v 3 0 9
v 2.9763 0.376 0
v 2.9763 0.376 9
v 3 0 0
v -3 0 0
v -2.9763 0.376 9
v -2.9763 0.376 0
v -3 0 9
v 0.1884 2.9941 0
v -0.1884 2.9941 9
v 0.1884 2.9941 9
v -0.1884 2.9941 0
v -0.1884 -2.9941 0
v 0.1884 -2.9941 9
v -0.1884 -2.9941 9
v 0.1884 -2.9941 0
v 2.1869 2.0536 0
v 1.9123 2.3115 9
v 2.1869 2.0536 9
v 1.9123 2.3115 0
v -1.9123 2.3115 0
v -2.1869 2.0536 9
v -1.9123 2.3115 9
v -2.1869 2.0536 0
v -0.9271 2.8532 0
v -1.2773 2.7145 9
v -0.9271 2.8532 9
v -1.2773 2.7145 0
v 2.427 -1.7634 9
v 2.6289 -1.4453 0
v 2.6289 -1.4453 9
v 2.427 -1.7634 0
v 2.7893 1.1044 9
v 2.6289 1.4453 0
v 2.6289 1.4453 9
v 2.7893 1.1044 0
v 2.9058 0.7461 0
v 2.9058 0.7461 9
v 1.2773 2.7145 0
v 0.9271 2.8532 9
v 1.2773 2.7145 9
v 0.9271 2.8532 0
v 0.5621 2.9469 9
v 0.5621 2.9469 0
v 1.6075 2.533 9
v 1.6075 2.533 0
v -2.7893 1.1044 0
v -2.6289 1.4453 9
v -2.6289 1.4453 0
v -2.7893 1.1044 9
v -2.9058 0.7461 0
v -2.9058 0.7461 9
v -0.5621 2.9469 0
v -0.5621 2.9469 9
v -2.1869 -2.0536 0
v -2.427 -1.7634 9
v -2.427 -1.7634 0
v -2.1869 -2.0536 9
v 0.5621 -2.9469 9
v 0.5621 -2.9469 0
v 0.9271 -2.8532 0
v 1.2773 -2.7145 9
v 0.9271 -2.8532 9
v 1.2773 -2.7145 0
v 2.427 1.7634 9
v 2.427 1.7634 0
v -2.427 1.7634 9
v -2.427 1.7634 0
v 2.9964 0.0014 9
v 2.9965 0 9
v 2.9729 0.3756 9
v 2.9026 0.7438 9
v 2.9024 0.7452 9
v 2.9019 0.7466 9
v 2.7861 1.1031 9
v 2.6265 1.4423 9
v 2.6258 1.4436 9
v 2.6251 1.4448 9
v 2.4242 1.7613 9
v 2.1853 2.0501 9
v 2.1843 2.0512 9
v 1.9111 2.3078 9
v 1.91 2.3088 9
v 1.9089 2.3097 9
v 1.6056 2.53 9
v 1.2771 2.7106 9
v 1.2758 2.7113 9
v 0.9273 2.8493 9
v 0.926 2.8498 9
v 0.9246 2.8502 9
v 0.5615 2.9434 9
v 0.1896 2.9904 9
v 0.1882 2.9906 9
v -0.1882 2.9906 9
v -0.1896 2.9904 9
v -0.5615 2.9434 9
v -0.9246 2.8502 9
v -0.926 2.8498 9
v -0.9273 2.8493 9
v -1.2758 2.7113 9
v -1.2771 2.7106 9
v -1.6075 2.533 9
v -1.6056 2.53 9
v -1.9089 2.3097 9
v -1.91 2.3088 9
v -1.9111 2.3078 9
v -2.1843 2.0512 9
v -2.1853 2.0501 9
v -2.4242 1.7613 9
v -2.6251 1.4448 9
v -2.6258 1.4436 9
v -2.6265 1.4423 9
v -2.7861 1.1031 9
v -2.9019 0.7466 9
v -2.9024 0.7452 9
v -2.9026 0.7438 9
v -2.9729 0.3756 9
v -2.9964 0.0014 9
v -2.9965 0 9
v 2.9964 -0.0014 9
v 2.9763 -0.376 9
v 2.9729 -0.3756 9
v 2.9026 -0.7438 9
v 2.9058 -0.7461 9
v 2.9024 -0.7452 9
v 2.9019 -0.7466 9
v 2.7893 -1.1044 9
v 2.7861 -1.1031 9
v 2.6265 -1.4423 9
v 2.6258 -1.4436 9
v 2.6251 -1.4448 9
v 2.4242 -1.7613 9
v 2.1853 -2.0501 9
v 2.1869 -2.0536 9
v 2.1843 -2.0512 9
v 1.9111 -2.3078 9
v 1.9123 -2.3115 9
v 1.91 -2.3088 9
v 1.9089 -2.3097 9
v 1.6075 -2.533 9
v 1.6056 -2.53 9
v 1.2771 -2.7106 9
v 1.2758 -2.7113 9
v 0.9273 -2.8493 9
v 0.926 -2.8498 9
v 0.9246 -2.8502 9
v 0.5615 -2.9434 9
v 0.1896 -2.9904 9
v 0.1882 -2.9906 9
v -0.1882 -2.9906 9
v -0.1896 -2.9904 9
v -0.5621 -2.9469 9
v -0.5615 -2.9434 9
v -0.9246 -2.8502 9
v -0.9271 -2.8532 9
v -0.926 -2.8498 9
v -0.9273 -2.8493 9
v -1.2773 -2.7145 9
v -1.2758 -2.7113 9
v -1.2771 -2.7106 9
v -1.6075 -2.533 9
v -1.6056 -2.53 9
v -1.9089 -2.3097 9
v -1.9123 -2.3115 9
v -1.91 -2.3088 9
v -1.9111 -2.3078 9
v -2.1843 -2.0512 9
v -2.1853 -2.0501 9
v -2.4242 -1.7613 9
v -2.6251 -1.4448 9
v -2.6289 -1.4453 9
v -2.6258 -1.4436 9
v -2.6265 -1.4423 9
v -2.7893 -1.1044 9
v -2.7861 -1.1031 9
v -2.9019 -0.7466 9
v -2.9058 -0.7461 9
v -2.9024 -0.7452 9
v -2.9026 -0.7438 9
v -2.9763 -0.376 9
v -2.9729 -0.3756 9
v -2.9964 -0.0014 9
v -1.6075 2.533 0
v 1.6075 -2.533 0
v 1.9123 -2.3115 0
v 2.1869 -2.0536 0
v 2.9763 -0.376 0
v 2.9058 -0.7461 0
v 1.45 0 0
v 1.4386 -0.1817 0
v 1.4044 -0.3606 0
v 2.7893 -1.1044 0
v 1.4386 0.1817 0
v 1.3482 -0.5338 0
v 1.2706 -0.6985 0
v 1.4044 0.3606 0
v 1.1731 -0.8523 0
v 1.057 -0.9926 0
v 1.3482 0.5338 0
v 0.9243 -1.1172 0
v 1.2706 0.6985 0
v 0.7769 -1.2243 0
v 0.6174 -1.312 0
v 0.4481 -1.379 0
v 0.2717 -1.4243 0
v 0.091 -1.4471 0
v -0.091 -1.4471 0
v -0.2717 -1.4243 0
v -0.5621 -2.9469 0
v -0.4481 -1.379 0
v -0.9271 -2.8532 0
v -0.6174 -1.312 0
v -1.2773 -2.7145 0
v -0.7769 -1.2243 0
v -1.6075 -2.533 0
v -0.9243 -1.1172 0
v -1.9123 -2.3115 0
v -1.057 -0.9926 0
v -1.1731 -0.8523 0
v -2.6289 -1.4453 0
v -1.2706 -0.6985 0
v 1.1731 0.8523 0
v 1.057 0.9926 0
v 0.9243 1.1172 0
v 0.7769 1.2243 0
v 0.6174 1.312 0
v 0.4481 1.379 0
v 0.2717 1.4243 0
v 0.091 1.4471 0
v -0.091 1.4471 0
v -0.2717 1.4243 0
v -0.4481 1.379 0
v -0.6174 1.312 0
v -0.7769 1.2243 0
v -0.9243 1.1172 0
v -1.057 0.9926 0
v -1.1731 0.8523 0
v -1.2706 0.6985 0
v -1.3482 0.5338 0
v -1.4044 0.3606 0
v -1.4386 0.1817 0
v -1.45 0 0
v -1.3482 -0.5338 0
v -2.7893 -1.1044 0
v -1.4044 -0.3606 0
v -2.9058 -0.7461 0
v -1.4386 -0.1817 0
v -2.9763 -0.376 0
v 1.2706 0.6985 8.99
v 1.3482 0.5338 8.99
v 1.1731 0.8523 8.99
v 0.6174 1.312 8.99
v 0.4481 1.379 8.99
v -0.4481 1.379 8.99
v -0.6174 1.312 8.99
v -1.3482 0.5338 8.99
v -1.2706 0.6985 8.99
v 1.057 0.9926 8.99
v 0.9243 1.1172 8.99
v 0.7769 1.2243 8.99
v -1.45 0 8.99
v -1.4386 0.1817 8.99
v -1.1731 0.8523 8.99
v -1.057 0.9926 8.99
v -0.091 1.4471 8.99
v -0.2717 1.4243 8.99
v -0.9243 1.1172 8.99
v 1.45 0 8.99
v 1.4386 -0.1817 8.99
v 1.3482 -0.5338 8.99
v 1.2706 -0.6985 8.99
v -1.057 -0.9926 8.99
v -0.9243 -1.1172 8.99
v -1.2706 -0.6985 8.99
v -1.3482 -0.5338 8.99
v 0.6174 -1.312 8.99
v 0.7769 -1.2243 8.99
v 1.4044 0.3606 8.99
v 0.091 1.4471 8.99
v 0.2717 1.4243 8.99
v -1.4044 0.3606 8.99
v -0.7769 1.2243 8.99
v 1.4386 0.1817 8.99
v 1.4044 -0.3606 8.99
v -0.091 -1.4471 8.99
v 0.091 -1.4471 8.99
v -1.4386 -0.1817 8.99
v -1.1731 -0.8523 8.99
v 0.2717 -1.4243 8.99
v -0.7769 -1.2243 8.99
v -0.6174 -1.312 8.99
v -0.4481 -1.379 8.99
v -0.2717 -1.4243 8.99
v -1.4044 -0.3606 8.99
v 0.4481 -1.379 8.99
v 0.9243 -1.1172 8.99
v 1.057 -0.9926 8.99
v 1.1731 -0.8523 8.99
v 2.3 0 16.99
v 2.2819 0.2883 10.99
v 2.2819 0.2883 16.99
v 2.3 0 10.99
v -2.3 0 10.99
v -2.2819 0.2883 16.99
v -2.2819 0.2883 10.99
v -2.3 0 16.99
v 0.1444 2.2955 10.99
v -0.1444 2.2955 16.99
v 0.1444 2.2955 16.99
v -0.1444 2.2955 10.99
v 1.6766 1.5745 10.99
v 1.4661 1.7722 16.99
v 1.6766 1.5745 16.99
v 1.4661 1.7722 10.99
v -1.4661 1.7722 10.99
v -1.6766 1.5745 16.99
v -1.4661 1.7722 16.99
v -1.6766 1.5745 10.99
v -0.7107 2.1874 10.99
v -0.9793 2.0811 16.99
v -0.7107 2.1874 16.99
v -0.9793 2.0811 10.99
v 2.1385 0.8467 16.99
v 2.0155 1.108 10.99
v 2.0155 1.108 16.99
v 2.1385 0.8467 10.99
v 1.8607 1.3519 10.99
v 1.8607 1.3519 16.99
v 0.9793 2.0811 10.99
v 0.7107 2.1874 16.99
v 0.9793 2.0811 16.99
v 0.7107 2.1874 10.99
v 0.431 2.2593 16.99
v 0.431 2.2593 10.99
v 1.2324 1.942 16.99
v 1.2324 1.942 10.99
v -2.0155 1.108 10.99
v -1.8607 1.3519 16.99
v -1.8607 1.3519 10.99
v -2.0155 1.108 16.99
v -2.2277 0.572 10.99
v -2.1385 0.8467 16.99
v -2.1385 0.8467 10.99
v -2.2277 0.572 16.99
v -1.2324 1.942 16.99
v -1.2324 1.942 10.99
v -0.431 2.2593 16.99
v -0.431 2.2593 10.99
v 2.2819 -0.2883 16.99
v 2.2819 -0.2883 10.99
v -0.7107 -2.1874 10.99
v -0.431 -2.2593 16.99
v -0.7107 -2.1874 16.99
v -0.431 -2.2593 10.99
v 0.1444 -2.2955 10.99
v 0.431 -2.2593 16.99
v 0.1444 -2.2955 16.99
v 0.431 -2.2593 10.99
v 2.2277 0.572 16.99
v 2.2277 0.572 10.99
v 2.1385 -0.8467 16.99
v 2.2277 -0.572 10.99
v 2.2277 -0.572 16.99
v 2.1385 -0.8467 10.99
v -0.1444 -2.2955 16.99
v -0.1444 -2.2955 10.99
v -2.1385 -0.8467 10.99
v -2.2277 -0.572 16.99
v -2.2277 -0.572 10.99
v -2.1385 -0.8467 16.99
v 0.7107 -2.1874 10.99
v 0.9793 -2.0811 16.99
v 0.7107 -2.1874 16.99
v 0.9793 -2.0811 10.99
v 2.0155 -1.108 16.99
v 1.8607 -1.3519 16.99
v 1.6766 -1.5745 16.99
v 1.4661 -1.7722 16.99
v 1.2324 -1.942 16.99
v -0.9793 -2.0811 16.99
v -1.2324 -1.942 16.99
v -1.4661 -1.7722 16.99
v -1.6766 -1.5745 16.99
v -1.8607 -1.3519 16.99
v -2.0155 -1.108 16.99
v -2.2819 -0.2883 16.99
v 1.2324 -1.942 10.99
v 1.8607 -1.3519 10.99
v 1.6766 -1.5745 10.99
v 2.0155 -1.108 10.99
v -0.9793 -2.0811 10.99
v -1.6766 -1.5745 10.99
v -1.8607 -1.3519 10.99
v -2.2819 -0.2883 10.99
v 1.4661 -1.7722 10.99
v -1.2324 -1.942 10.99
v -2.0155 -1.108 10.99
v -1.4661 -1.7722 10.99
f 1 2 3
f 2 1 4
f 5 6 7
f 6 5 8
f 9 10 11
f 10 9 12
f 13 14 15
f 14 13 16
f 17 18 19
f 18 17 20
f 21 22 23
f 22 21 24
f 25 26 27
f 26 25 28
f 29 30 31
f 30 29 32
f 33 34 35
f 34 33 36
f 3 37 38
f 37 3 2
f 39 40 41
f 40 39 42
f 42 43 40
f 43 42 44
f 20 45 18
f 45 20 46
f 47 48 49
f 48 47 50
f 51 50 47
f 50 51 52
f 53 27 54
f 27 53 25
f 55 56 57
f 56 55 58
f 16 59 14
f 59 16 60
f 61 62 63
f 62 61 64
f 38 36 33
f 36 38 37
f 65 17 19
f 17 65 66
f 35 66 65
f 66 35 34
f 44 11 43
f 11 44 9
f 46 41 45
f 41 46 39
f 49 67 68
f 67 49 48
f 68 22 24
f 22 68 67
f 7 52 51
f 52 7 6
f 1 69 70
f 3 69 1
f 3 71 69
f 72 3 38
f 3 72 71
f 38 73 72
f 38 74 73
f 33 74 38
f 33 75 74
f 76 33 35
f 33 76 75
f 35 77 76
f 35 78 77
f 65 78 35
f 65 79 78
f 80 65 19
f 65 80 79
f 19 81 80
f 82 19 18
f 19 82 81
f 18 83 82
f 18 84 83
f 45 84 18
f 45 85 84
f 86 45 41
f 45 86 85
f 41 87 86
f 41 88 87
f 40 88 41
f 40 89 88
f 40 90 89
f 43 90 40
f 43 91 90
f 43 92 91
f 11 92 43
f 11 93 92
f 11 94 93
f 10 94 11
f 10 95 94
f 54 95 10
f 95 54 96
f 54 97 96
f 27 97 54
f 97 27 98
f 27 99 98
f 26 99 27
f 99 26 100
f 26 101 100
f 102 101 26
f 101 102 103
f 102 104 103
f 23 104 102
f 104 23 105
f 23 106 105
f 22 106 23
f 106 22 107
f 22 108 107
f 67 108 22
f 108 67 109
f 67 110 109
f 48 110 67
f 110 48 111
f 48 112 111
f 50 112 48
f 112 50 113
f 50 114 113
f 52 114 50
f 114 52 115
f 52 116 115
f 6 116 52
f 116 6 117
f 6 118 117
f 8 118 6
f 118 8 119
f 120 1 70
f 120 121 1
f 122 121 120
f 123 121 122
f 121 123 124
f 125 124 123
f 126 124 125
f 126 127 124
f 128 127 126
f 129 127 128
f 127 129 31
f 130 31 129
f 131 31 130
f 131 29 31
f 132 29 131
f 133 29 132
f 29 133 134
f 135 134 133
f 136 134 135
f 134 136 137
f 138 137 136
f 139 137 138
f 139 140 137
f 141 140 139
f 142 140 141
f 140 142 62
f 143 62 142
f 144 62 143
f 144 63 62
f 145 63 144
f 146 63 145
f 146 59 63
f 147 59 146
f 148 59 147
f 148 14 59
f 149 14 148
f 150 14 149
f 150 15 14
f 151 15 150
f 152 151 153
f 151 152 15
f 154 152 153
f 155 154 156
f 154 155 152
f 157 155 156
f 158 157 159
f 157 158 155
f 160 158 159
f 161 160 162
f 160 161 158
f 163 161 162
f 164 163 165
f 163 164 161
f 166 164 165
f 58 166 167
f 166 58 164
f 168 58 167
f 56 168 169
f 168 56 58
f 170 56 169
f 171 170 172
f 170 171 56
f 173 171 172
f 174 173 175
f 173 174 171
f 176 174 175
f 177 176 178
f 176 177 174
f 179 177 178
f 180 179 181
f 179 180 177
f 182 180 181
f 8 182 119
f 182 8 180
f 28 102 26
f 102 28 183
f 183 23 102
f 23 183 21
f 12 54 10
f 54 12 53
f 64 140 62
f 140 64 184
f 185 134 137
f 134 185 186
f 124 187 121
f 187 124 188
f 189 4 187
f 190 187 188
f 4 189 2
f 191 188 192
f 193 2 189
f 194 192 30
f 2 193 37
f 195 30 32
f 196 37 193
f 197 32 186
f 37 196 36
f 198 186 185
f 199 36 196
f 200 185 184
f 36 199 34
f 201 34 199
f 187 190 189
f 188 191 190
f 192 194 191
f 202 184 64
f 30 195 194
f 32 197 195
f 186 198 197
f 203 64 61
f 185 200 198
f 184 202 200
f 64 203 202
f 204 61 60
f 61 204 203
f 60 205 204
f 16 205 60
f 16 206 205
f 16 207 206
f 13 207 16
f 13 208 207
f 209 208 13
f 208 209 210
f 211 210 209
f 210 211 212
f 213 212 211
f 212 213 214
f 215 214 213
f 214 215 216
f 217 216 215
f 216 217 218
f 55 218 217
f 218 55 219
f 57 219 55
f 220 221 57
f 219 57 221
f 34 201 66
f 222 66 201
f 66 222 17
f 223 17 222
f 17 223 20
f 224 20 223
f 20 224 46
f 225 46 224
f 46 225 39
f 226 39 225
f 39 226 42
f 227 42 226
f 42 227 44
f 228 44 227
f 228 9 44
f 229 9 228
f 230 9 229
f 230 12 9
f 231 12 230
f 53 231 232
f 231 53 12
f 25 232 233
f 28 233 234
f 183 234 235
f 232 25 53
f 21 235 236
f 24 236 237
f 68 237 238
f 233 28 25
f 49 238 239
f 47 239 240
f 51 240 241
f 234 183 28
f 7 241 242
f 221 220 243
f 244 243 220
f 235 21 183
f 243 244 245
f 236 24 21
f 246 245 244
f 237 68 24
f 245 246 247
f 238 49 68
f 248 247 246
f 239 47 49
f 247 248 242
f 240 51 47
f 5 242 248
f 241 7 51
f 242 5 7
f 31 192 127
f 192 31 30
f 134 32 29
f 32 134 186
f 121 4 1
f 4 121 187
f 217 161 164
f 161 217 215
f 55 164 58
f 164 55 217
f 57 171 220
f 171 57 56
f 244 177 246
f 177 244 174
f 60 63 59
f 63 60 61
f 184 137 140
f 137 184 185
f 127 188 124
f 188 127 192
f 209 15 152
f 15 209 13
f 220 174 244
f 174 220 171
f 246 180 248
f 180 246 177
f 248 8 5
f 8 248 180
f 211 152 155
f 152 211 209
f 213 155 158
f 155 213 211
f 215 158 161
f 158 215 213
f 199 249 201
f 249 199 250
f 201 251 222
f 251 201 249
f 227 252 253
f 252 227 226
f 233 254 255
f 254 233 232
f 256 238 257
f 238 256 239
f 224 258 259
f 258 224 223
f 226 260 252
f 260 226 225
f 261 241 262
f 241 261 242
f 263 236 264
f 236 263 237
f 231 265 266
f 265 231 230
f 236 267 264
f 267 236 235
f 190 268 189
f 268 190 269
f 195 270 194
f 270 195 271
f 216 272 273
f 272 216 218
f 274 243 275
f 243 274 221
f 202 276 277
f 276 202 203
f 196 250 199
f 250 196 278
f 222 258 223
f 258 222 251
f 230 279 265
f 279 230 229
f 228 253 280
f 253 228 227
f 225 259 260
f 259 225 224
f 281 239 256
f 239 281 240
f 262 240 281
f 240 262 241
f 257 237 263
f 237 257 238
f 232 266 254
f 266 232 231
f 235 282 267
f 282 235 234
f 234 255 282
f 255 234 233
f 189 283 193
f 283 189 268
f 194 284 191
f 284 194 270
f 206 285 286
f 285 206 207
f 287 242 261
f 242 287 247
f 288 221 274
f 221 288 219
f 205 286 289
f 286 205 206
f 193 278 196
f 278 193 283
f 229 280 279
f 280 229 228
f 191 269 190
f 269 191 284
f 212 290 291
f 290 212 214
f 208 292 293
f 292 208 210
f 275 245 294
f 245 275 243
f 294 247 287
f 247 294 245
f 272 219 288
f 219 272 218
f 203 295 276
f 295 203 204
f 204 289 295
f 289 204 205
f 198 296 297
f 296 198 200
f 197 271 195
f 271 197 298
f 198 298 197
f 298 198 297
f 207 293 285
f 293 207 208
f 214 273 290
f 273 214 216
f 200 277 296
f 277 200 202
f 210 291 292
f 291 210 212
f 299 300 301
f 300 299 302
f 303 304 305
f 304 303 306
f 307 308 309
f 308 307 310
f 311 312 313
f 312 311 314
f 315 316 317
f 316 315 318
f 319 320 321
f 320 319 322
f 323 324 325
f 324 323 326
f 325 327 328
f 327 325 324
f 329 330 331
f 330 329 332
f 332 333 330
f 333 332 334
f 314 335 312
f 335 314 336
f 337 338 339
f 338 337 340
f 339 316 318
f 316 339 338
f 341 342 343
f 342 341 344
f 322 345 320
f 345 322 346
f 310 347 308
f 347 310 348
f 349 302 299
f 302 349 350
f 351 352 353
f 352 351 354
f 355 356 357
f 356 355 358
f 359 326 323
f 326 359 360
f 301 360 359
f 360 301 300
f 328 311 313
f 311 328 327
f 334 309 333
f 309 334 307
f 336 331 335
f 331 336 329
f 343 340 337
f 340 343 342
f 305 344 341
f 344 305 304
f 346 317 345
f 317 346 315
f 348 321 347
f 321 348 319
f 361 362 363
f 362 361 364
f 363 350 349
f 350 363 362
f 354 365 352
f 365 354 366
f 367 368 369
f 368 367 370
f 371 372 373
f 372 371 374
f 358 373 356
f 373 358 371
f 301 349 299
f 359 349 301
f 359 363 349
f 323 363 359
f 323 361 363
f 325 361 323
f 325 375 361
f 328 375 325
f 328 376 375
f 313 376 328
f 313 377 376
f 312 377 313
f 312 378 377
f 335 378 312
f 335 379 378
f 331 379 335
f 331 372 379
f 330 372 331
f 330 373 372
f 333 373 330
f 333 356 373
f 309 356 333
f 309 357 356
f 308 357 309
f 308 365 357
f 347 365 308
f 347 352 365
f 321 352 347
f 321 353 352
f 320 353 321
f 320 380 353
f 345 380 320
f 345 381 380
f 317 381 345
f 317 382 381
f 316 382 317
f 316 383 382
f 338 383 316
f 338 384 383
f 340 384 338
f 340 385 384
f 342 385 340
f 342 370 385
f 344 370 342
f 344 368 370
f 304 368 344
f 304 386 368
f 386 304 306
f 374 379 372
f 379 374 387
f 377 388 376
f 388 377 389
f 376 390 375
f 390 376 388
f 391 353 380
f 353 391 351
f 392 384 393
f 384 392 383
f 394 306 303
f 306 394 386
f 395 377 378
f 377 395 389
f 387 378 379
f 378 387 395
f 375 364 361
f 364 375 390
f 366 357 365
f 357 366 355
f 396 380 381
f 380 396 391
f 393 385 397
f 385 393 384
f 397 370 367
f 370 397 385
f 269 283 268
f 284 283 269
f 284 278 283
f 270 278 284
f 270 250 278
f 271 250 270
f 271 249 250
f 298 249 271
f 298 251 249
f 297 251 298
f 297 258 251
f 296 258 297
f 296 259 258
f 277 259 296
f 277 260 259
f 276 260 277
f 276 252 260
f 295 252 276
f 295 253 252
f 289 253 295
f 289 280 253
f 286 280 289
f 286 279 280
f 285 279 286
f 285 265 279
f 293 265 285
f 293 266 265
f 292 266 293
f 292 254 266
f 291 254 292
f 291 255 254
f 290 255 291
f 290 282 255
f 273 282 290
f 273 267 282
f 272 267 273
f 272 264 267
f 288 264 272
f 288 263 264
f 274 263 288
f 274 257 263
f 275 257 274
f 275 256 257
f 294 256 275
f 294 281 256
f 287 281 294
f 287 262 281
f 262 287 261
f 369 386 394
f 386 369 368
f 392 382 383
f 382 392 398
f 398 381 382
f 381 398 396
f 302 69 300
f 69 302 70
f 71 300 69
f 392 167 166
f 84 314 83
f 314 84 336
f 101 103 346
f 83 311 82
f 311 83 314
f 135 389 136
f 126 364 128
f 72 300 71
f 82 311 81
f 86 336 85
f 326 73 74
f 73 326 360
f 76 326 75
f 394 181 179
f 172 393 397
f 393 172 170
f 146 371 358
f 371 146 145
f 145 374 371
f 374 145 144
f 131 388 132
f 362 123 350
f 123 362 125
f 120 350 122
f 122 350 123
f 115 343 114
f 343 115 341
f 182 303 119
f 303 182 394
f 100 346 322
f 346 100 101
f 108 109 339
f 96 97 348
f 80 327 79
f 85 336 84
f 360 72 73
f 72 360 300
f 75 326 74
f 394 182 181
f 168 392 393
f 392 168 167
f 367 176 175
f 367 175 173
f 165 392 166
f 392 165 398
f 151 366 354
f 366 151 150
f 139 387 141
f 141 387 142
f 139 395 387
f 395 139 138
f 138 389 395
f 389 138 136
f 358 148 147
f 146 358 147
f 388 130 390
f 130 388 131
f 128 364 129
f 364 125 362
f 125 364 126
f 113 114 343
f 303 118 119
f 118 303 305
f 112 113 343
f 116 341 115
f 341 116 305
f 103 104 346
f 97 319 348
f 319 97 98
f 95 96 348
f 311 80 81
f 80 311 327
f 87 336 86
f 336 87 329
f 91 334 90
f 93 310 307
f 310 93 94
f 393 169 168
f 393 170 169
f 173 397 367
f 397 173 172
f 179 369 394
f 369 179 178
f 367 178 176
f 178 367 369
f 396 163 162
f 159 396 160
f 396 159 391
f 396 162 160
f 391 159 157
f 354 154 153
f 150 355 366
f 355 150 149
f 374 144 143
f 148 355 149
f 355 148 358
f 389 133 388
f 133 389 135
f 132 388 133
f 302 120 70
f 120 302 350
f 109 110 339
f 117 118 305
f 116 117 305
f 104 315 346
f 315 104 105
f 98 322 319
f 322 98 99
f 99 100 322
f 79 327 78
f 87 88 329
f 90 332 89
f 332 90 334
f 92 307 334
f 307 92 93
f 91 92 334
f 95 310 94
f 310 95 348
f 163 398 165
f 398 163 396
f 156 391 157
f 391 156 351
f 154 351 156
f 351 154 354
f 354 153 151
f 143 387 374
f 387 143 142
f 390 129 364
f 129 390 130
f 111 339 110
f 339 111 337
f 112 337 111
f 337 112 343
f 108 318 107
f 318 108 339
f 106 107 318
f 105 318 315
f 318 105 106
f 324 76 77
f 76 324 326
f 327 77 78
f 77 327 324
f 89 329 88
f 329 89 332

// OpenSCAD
// file: ../library_deh/mag_mount.scad
/* mag_mount.scad

 * ****** Stud magnets ******
16 mm 
http://www.kjmagnetics.com/proddetail.asp?prod=MM-C-16
    Dimensions:
        D=16mm (0.63")
        M=4mm (0.16") (M4 Coarse Male threaded stud)
        H=13mm (0.51")
        h=5mm (0.20")
    Material: NdFeB, Grade N38
    Plating/Coating: Ni-Cu-Ni (Nickel)
    Magnetization Direction: Axial (Poles on Flat Ends)
    Weight: 0.26 oz. (7.37 g)
    Pull Force: 12.1 lbs
    Surface Field: N/A
    Brmax: 12,600 Gauss
    BHmax: 38 MGOe
   $2.49
*/
// Measured dimensions
 mag_thick = 4.82;	    // Magnet thickness (base to shell top)
 mag_shell_dia = 16.0;	    // Magnet shell OD
 mag_shell_flat_dia = 11;   // Dia of flat of magent
 mag_stud_dia = 2.8;        // Dia of mounting magnet studs (4-40)
 mag_stud_len = 8.0;        // Height of stud from magnet back
 mag_washer_thick = 1.1;    // Thickness of washer
 mag_nut_thick = 2.4;       // Stud nut (M3) thickness
 mag_nut_hex_flat = 5.41;   // Nut across flats
 mag_nut_hex_peak = 6.20;   // Nut across peaks (also dia of nut)
 mag_washer_dia = 7.1; // 9.5;      // Diameter of washer for magnet stud
 mag_washer_dia_extra = 2;  // Washer slop

/*
http://www.kjmagnetics.com/proddetail.asp?prod=MM-C-20


    Dimensions:
        D=20mm (0.79")
        M=4mm (0.16") (M4 Coarse Male threaded stud)
        H=15mm (0.59")
        h=7mm (0.28")
    Material: NdFeB, Grade N38
    Plating/Coating: Ni-Cu-Ni (Nickel)
    Magnetization Direction: Axial (Poles on Flat Ends)
    Weight: 0.53 oz. (15.0 g)
    Pull Force: 28.7 lbs
    Surface Field: N/A
    Brmax: 12,600 Gauss
    BHmax: 38 MGOe

  $3.14
*/
 mag20_thick = 7.11;	    // Magnet thickness (base to shell top)
 mag20_shell_dia = 20.2;    // Magnet shell OD
 mag20_stud_dia = 4.53;     // Dia of mounting magnet stud at base
 mag20_stud_len = 7.75;       // Height of stud from magnet back
 mag20_washer_thick = 0.85;    // Thickness of washer
 mag20_nut_thick = 2.93;       // Nut for stud thickness
 mag20_washer_dia = 8.68;      // Diameter of washer for magnet stud
 mag20_washer_dia_extra = 2;  // Washer slop

/*
http://www.kjmagnetics.com/proddetail.asp?prod=MM-C-25

    Dimensions:
        D=25mm (0.98")
        M=5mm (0.20") (M5 Coarse Male threaded stud)
        H=17mm (0.67")
        h=8mm (0.32")
    Material: NdFeB, Grade N38
    Plating/Coating: Ni-Cu-Ni (Nickel)
    Magnetization Direction: Axial (Poles on Flat Ends)
    Weight: 0.92 oz. (26.1 g)
    Pull Force: 48.5 lbs
    Surface Field: N/A
    Brmax: 12,600 Gauss
    BHmax: 38 MGOe
  $4.20
*/
// $$$$$ INCOMPLETE $$$$$$
 mag25_thick = 4.82;	    // Magnet thickness (base to shell top)
 mag25_shell_dia = 16.0;	    // Magnet shell OD
 mag25_stud_dia = 2.8;        // Dia of mounting magnet studs (4-40)
 mag25_stud_len = 7.95;       // Height of stud from magnet back
 mag25_washer_thick = 1.1;    // Thickness of washer
 mag25_nut_thick = 2.4;       // Nut for stud thickness
 mag25_washer_dia = 9.5;      // Diameter of washer for magnet stud
 mag25_washer_dia_extra = 2;  // Washer slop

// Cylindrical magnets
mag_cyl_dia = 6.5; 
mag_cyl_ht = 5.05;
// file: ../library_deh/deh_shapes.scad
/* **** deh_shapes.scad *****
   * Library of useful shapes
   * 20170512
*/


/*  ***** tubedeh *****
d1 = outside diameter
d2 = inside diameter
ht = height
reference is center of tube, bottom
*/
module tubedeh(d1,d2,ht)
{
   difference()
   {
     cylinder(d = d1, h = ht, center = false);
     cylinder(d = d2, h = ht + .001, center = false);
   }
}
/* ***** rounded_bar *****
 * rectangular bar with rounded end
bar with one end rounded
rounded_bar(d, l, h)
d = diameter of rounded end, and width of bar
l = length of bar from center of rounded end to end
h = thickness (height) of bar
reference is center of rounded end, bottom
*/
module rounded_bar(d, l, h)
{
    // Rounded end
    cylinder(d = d, h = h, center = false);
    // Bar
    translate([0, -d/2, 0])
       cube([l, d, h],false);
}
/* ***** eyebar *****
 * rounded bar with hole in rounded end
 * module eye_bar(d1, d2, len, ht)
d1 = outside diameter of rounded end, and width of bar
d2 = diameter of hole in end of bar
*/
module eye_bar(d1, d2, len, ht)
{
   difference()
   {   
      rounded_bar(d1,len,ht);
      cylinder(d = d2, h = ht + .001, center = false);
   }
}
/* ***** rounded_rectangle ******
rounded_rectangle(l,w,h,rad);
l = length (x direction)
w = width (y direction)
h = thickness (z direction)
rad = radius of corners
reference = center of rectangle x,y, bottom
*/
module rounded_rectangle(l,w,h,rad)
{
  translate([-(l-rad)/2,-(w-rad)/2,0])
  {
    // Four rounded edges
    translate([0,0,0])
      rounded_bar(rad*2,l-rad,h);
    translate([l-rad,0,0])
      rotate([0,0,90])
      rounded_bar(rad*2,w-rad,h);
    translate([l-rad,w-rad,0])
      rotate([0,0,180])
      rounded_bar(rad*2,l-rad,h);
    translate([0,w-rad,0])
      rotate([0,0,-90])
      rounded_bar(rad*2,w-rad,h);
    // Fill in center
    translate([0,0,0])
      cube([l-rad + .01,w-rad + .01,h],false);
  }
}

/* ***** rounded rim *****
module rounded_rim(l,w,h,rad,tk);
l = length (inside, x direction)
w = width (inside, y direction)
h = thickness (z direction)
rad = radius of corners
tk = thickness of rim wall
*/
module rounded_rim(l,w,h,rad,tk)
{
  difference()
  {
    rounded_rectangle(l+2*tk,w+2*tk,h,rad);
    rounded_rectangle(l, w, h, rad);
  }
}

/* ***** wedge *****
l = length
w = width
h = height/thickness
*/
 module wedge(l, w, h)
 {
   polyhedron(
      points=[[0,0,0], [l,0,0], [l,w,0], [0,w,0], [0,w,h], [l,w,h]],
       faces=[[0,1,2,3],[5,4,3,2],[0,4,5,1],[0,3,4],[5,2,1]] );
 }
/* ***** rounded_triangle *****
 * l1 = side 1
 * l2 = side 2
 * l3 = side 3
 * h  = height/thickness
 * rad = radius of rounded corners
 */
module rounded_triangle(l1,l2,l3,h,rad)
{
  // Compute rotation angles
  al3 = acos((l1*l1 + l2*l2 - l3*l3)/(2 * l1 * l2));
  al1 = acos((l2*l2 + l3*l3 - l1*l1)/(2 * l2 * l3));
  al2 = acos((l3*l3 + l1*l1 - l2*l2)/(2 * l3 * l1));
  // Setup bars for edges
  translate([0,0,0])
    rotate([0,0,0])
      rounded_bar(rad,l3,h);
  translate([l3,0,0])
    rotate([0,0,180-al2])
      rounded_bar(rad,l1,h);
  rotate([0,0,al1])
    translate([l2,0,0])
      rotate([0,0,180])
        rounded_bar(rad,l2,h);
  // Fill in center
    triangle(l1,l2,l3,h);
}
/* ***** triangle *****
 * l1 = side 1
 * l2 = side 2
 * l3 = side 3
 * h  = height/thickness
 */
module triangle(l1,l2,l3,h)
{
  // Compute rotation angle
  al1 = acos((l2*l2 + l3*l3 - l1*l1)/(2 * l2 * l3));
  
  linear_extrude(height = h)
  polygon(points = [[0,0],[l3,0],[l2*cos(al1),l2*sin(al1)]]);
}
/* ***** chamfered hole *****
 * Punch hole with chamfer on one end
 * d1 = main hole diameter
 * d2 = hole diameter at chamfered end
 * ht1 = height of whole hole
 * ht2 = depth of  chamfer
*/
module chamfered_hole(d1,d2,ht1,ht2)
{
   rotate_extrude(convexity = 10)
     polygon(points = [[0,0],[d1/2,0],[d1/2,ht1-ht2],[d2/2,ht1],[0,ht1]]);

}

/* ***** fillet *****
 * r = radius of fillet
 * l = length of fillet
 fillet (r,l);
*/
module fillet(r,l)
{
   difference()
   {
     union()
     {
       cube([2*r,2*r,l]);
     }
     union()
     {
       translate ([r,r,0])
           cylinder(d = 2*r + 0.1, h = l, center = false);
       translate([r,0,0])
           cube([r,2*r,l],center = false);
       translate([0,r,0])
           cube([2*r,r,l],center = false);
     }
   }
}
/* ***** circular chamfer *****
 * d = outer diameter
 * rad = chamfer radius
 * circular_chamfer(d, rad);
*/
module circular_chamfer(d, rad)
{
  ofs = (d/2 - rad);
  rotate_extrude()
  translate([ofs,0])
   difference()
   {
     union()
     {
       square(size = [rad, rad]);
     }
     union()
     {
       translate ([0,rad ])
           circle(d = 2*rad + 0.1);
     }
   }
}
module circular_inner_chamfer(d, rad)
{
  circular_chamfer(d, rad);
} 

/* ***** circular chamfer *****
 * d = inner diameter
 * rad = chamfer radius
 * circular_chamfer(d, rad);
*/
module circular_outer_chamfer(d, rad)
{
  ofs = (d/2 - rad);
  rotate_extrude()
  translate([ofs,0])
   difference()
   {
     union()
     {
       square(size = [rad, rad]);
     }
     union()
     {
       translate ([rad,rad ])
           circle(d = 2*rad + 0.1);
     }
   }
}
// main file
/* shaft.scad
 * Coupling for motor to drive shaft
 * Date: 20170728
 * #### Be sure to use latest openscad! ####
 * #### or rotate_extrude will not work ####
 */

include <../library_deh/deh_shapes.scad>
include <../library_deh/mag_mount.scad>

$fn = 50;

cp_ht = 9;
cp_id = 2.9;
cp_od = 6;
cp_ht2 = 8;
cp_od2 = 4.6;

module splinetooth(ofs_x)
{
   sp_1 = .5; sp_2 = 1;
   az = atan( (sp_1/2)/sp_2 );
   ax = ofs_x - 1;
   translate([ax,0,0])
     rotate([0,0,-az])
        triangle(sp_1,sp_2,sp_2,cp_ht);
}

module splineteeth(x)
{
  nteeth = 6;
  step = 180/nteeth;
      for (i = [step/2 : 2*step : (360 - .01)])
      {
        rotate([0,0,i])
          splinetooth(x);   
      }  
}

module part()
{
    translate([0,0,cp_ht-.01])
    	cylinder(d=cp_od2,h=cp_ht2,center=false);
    
    translate([0,0,cp_ht-.01])
    	cylinder( d2=cp_od2, d1=cp_od, h=2, center=false);
    
      
	tubedeh(cp_od,cp_id,cp_ht);
    
    

}
part();
